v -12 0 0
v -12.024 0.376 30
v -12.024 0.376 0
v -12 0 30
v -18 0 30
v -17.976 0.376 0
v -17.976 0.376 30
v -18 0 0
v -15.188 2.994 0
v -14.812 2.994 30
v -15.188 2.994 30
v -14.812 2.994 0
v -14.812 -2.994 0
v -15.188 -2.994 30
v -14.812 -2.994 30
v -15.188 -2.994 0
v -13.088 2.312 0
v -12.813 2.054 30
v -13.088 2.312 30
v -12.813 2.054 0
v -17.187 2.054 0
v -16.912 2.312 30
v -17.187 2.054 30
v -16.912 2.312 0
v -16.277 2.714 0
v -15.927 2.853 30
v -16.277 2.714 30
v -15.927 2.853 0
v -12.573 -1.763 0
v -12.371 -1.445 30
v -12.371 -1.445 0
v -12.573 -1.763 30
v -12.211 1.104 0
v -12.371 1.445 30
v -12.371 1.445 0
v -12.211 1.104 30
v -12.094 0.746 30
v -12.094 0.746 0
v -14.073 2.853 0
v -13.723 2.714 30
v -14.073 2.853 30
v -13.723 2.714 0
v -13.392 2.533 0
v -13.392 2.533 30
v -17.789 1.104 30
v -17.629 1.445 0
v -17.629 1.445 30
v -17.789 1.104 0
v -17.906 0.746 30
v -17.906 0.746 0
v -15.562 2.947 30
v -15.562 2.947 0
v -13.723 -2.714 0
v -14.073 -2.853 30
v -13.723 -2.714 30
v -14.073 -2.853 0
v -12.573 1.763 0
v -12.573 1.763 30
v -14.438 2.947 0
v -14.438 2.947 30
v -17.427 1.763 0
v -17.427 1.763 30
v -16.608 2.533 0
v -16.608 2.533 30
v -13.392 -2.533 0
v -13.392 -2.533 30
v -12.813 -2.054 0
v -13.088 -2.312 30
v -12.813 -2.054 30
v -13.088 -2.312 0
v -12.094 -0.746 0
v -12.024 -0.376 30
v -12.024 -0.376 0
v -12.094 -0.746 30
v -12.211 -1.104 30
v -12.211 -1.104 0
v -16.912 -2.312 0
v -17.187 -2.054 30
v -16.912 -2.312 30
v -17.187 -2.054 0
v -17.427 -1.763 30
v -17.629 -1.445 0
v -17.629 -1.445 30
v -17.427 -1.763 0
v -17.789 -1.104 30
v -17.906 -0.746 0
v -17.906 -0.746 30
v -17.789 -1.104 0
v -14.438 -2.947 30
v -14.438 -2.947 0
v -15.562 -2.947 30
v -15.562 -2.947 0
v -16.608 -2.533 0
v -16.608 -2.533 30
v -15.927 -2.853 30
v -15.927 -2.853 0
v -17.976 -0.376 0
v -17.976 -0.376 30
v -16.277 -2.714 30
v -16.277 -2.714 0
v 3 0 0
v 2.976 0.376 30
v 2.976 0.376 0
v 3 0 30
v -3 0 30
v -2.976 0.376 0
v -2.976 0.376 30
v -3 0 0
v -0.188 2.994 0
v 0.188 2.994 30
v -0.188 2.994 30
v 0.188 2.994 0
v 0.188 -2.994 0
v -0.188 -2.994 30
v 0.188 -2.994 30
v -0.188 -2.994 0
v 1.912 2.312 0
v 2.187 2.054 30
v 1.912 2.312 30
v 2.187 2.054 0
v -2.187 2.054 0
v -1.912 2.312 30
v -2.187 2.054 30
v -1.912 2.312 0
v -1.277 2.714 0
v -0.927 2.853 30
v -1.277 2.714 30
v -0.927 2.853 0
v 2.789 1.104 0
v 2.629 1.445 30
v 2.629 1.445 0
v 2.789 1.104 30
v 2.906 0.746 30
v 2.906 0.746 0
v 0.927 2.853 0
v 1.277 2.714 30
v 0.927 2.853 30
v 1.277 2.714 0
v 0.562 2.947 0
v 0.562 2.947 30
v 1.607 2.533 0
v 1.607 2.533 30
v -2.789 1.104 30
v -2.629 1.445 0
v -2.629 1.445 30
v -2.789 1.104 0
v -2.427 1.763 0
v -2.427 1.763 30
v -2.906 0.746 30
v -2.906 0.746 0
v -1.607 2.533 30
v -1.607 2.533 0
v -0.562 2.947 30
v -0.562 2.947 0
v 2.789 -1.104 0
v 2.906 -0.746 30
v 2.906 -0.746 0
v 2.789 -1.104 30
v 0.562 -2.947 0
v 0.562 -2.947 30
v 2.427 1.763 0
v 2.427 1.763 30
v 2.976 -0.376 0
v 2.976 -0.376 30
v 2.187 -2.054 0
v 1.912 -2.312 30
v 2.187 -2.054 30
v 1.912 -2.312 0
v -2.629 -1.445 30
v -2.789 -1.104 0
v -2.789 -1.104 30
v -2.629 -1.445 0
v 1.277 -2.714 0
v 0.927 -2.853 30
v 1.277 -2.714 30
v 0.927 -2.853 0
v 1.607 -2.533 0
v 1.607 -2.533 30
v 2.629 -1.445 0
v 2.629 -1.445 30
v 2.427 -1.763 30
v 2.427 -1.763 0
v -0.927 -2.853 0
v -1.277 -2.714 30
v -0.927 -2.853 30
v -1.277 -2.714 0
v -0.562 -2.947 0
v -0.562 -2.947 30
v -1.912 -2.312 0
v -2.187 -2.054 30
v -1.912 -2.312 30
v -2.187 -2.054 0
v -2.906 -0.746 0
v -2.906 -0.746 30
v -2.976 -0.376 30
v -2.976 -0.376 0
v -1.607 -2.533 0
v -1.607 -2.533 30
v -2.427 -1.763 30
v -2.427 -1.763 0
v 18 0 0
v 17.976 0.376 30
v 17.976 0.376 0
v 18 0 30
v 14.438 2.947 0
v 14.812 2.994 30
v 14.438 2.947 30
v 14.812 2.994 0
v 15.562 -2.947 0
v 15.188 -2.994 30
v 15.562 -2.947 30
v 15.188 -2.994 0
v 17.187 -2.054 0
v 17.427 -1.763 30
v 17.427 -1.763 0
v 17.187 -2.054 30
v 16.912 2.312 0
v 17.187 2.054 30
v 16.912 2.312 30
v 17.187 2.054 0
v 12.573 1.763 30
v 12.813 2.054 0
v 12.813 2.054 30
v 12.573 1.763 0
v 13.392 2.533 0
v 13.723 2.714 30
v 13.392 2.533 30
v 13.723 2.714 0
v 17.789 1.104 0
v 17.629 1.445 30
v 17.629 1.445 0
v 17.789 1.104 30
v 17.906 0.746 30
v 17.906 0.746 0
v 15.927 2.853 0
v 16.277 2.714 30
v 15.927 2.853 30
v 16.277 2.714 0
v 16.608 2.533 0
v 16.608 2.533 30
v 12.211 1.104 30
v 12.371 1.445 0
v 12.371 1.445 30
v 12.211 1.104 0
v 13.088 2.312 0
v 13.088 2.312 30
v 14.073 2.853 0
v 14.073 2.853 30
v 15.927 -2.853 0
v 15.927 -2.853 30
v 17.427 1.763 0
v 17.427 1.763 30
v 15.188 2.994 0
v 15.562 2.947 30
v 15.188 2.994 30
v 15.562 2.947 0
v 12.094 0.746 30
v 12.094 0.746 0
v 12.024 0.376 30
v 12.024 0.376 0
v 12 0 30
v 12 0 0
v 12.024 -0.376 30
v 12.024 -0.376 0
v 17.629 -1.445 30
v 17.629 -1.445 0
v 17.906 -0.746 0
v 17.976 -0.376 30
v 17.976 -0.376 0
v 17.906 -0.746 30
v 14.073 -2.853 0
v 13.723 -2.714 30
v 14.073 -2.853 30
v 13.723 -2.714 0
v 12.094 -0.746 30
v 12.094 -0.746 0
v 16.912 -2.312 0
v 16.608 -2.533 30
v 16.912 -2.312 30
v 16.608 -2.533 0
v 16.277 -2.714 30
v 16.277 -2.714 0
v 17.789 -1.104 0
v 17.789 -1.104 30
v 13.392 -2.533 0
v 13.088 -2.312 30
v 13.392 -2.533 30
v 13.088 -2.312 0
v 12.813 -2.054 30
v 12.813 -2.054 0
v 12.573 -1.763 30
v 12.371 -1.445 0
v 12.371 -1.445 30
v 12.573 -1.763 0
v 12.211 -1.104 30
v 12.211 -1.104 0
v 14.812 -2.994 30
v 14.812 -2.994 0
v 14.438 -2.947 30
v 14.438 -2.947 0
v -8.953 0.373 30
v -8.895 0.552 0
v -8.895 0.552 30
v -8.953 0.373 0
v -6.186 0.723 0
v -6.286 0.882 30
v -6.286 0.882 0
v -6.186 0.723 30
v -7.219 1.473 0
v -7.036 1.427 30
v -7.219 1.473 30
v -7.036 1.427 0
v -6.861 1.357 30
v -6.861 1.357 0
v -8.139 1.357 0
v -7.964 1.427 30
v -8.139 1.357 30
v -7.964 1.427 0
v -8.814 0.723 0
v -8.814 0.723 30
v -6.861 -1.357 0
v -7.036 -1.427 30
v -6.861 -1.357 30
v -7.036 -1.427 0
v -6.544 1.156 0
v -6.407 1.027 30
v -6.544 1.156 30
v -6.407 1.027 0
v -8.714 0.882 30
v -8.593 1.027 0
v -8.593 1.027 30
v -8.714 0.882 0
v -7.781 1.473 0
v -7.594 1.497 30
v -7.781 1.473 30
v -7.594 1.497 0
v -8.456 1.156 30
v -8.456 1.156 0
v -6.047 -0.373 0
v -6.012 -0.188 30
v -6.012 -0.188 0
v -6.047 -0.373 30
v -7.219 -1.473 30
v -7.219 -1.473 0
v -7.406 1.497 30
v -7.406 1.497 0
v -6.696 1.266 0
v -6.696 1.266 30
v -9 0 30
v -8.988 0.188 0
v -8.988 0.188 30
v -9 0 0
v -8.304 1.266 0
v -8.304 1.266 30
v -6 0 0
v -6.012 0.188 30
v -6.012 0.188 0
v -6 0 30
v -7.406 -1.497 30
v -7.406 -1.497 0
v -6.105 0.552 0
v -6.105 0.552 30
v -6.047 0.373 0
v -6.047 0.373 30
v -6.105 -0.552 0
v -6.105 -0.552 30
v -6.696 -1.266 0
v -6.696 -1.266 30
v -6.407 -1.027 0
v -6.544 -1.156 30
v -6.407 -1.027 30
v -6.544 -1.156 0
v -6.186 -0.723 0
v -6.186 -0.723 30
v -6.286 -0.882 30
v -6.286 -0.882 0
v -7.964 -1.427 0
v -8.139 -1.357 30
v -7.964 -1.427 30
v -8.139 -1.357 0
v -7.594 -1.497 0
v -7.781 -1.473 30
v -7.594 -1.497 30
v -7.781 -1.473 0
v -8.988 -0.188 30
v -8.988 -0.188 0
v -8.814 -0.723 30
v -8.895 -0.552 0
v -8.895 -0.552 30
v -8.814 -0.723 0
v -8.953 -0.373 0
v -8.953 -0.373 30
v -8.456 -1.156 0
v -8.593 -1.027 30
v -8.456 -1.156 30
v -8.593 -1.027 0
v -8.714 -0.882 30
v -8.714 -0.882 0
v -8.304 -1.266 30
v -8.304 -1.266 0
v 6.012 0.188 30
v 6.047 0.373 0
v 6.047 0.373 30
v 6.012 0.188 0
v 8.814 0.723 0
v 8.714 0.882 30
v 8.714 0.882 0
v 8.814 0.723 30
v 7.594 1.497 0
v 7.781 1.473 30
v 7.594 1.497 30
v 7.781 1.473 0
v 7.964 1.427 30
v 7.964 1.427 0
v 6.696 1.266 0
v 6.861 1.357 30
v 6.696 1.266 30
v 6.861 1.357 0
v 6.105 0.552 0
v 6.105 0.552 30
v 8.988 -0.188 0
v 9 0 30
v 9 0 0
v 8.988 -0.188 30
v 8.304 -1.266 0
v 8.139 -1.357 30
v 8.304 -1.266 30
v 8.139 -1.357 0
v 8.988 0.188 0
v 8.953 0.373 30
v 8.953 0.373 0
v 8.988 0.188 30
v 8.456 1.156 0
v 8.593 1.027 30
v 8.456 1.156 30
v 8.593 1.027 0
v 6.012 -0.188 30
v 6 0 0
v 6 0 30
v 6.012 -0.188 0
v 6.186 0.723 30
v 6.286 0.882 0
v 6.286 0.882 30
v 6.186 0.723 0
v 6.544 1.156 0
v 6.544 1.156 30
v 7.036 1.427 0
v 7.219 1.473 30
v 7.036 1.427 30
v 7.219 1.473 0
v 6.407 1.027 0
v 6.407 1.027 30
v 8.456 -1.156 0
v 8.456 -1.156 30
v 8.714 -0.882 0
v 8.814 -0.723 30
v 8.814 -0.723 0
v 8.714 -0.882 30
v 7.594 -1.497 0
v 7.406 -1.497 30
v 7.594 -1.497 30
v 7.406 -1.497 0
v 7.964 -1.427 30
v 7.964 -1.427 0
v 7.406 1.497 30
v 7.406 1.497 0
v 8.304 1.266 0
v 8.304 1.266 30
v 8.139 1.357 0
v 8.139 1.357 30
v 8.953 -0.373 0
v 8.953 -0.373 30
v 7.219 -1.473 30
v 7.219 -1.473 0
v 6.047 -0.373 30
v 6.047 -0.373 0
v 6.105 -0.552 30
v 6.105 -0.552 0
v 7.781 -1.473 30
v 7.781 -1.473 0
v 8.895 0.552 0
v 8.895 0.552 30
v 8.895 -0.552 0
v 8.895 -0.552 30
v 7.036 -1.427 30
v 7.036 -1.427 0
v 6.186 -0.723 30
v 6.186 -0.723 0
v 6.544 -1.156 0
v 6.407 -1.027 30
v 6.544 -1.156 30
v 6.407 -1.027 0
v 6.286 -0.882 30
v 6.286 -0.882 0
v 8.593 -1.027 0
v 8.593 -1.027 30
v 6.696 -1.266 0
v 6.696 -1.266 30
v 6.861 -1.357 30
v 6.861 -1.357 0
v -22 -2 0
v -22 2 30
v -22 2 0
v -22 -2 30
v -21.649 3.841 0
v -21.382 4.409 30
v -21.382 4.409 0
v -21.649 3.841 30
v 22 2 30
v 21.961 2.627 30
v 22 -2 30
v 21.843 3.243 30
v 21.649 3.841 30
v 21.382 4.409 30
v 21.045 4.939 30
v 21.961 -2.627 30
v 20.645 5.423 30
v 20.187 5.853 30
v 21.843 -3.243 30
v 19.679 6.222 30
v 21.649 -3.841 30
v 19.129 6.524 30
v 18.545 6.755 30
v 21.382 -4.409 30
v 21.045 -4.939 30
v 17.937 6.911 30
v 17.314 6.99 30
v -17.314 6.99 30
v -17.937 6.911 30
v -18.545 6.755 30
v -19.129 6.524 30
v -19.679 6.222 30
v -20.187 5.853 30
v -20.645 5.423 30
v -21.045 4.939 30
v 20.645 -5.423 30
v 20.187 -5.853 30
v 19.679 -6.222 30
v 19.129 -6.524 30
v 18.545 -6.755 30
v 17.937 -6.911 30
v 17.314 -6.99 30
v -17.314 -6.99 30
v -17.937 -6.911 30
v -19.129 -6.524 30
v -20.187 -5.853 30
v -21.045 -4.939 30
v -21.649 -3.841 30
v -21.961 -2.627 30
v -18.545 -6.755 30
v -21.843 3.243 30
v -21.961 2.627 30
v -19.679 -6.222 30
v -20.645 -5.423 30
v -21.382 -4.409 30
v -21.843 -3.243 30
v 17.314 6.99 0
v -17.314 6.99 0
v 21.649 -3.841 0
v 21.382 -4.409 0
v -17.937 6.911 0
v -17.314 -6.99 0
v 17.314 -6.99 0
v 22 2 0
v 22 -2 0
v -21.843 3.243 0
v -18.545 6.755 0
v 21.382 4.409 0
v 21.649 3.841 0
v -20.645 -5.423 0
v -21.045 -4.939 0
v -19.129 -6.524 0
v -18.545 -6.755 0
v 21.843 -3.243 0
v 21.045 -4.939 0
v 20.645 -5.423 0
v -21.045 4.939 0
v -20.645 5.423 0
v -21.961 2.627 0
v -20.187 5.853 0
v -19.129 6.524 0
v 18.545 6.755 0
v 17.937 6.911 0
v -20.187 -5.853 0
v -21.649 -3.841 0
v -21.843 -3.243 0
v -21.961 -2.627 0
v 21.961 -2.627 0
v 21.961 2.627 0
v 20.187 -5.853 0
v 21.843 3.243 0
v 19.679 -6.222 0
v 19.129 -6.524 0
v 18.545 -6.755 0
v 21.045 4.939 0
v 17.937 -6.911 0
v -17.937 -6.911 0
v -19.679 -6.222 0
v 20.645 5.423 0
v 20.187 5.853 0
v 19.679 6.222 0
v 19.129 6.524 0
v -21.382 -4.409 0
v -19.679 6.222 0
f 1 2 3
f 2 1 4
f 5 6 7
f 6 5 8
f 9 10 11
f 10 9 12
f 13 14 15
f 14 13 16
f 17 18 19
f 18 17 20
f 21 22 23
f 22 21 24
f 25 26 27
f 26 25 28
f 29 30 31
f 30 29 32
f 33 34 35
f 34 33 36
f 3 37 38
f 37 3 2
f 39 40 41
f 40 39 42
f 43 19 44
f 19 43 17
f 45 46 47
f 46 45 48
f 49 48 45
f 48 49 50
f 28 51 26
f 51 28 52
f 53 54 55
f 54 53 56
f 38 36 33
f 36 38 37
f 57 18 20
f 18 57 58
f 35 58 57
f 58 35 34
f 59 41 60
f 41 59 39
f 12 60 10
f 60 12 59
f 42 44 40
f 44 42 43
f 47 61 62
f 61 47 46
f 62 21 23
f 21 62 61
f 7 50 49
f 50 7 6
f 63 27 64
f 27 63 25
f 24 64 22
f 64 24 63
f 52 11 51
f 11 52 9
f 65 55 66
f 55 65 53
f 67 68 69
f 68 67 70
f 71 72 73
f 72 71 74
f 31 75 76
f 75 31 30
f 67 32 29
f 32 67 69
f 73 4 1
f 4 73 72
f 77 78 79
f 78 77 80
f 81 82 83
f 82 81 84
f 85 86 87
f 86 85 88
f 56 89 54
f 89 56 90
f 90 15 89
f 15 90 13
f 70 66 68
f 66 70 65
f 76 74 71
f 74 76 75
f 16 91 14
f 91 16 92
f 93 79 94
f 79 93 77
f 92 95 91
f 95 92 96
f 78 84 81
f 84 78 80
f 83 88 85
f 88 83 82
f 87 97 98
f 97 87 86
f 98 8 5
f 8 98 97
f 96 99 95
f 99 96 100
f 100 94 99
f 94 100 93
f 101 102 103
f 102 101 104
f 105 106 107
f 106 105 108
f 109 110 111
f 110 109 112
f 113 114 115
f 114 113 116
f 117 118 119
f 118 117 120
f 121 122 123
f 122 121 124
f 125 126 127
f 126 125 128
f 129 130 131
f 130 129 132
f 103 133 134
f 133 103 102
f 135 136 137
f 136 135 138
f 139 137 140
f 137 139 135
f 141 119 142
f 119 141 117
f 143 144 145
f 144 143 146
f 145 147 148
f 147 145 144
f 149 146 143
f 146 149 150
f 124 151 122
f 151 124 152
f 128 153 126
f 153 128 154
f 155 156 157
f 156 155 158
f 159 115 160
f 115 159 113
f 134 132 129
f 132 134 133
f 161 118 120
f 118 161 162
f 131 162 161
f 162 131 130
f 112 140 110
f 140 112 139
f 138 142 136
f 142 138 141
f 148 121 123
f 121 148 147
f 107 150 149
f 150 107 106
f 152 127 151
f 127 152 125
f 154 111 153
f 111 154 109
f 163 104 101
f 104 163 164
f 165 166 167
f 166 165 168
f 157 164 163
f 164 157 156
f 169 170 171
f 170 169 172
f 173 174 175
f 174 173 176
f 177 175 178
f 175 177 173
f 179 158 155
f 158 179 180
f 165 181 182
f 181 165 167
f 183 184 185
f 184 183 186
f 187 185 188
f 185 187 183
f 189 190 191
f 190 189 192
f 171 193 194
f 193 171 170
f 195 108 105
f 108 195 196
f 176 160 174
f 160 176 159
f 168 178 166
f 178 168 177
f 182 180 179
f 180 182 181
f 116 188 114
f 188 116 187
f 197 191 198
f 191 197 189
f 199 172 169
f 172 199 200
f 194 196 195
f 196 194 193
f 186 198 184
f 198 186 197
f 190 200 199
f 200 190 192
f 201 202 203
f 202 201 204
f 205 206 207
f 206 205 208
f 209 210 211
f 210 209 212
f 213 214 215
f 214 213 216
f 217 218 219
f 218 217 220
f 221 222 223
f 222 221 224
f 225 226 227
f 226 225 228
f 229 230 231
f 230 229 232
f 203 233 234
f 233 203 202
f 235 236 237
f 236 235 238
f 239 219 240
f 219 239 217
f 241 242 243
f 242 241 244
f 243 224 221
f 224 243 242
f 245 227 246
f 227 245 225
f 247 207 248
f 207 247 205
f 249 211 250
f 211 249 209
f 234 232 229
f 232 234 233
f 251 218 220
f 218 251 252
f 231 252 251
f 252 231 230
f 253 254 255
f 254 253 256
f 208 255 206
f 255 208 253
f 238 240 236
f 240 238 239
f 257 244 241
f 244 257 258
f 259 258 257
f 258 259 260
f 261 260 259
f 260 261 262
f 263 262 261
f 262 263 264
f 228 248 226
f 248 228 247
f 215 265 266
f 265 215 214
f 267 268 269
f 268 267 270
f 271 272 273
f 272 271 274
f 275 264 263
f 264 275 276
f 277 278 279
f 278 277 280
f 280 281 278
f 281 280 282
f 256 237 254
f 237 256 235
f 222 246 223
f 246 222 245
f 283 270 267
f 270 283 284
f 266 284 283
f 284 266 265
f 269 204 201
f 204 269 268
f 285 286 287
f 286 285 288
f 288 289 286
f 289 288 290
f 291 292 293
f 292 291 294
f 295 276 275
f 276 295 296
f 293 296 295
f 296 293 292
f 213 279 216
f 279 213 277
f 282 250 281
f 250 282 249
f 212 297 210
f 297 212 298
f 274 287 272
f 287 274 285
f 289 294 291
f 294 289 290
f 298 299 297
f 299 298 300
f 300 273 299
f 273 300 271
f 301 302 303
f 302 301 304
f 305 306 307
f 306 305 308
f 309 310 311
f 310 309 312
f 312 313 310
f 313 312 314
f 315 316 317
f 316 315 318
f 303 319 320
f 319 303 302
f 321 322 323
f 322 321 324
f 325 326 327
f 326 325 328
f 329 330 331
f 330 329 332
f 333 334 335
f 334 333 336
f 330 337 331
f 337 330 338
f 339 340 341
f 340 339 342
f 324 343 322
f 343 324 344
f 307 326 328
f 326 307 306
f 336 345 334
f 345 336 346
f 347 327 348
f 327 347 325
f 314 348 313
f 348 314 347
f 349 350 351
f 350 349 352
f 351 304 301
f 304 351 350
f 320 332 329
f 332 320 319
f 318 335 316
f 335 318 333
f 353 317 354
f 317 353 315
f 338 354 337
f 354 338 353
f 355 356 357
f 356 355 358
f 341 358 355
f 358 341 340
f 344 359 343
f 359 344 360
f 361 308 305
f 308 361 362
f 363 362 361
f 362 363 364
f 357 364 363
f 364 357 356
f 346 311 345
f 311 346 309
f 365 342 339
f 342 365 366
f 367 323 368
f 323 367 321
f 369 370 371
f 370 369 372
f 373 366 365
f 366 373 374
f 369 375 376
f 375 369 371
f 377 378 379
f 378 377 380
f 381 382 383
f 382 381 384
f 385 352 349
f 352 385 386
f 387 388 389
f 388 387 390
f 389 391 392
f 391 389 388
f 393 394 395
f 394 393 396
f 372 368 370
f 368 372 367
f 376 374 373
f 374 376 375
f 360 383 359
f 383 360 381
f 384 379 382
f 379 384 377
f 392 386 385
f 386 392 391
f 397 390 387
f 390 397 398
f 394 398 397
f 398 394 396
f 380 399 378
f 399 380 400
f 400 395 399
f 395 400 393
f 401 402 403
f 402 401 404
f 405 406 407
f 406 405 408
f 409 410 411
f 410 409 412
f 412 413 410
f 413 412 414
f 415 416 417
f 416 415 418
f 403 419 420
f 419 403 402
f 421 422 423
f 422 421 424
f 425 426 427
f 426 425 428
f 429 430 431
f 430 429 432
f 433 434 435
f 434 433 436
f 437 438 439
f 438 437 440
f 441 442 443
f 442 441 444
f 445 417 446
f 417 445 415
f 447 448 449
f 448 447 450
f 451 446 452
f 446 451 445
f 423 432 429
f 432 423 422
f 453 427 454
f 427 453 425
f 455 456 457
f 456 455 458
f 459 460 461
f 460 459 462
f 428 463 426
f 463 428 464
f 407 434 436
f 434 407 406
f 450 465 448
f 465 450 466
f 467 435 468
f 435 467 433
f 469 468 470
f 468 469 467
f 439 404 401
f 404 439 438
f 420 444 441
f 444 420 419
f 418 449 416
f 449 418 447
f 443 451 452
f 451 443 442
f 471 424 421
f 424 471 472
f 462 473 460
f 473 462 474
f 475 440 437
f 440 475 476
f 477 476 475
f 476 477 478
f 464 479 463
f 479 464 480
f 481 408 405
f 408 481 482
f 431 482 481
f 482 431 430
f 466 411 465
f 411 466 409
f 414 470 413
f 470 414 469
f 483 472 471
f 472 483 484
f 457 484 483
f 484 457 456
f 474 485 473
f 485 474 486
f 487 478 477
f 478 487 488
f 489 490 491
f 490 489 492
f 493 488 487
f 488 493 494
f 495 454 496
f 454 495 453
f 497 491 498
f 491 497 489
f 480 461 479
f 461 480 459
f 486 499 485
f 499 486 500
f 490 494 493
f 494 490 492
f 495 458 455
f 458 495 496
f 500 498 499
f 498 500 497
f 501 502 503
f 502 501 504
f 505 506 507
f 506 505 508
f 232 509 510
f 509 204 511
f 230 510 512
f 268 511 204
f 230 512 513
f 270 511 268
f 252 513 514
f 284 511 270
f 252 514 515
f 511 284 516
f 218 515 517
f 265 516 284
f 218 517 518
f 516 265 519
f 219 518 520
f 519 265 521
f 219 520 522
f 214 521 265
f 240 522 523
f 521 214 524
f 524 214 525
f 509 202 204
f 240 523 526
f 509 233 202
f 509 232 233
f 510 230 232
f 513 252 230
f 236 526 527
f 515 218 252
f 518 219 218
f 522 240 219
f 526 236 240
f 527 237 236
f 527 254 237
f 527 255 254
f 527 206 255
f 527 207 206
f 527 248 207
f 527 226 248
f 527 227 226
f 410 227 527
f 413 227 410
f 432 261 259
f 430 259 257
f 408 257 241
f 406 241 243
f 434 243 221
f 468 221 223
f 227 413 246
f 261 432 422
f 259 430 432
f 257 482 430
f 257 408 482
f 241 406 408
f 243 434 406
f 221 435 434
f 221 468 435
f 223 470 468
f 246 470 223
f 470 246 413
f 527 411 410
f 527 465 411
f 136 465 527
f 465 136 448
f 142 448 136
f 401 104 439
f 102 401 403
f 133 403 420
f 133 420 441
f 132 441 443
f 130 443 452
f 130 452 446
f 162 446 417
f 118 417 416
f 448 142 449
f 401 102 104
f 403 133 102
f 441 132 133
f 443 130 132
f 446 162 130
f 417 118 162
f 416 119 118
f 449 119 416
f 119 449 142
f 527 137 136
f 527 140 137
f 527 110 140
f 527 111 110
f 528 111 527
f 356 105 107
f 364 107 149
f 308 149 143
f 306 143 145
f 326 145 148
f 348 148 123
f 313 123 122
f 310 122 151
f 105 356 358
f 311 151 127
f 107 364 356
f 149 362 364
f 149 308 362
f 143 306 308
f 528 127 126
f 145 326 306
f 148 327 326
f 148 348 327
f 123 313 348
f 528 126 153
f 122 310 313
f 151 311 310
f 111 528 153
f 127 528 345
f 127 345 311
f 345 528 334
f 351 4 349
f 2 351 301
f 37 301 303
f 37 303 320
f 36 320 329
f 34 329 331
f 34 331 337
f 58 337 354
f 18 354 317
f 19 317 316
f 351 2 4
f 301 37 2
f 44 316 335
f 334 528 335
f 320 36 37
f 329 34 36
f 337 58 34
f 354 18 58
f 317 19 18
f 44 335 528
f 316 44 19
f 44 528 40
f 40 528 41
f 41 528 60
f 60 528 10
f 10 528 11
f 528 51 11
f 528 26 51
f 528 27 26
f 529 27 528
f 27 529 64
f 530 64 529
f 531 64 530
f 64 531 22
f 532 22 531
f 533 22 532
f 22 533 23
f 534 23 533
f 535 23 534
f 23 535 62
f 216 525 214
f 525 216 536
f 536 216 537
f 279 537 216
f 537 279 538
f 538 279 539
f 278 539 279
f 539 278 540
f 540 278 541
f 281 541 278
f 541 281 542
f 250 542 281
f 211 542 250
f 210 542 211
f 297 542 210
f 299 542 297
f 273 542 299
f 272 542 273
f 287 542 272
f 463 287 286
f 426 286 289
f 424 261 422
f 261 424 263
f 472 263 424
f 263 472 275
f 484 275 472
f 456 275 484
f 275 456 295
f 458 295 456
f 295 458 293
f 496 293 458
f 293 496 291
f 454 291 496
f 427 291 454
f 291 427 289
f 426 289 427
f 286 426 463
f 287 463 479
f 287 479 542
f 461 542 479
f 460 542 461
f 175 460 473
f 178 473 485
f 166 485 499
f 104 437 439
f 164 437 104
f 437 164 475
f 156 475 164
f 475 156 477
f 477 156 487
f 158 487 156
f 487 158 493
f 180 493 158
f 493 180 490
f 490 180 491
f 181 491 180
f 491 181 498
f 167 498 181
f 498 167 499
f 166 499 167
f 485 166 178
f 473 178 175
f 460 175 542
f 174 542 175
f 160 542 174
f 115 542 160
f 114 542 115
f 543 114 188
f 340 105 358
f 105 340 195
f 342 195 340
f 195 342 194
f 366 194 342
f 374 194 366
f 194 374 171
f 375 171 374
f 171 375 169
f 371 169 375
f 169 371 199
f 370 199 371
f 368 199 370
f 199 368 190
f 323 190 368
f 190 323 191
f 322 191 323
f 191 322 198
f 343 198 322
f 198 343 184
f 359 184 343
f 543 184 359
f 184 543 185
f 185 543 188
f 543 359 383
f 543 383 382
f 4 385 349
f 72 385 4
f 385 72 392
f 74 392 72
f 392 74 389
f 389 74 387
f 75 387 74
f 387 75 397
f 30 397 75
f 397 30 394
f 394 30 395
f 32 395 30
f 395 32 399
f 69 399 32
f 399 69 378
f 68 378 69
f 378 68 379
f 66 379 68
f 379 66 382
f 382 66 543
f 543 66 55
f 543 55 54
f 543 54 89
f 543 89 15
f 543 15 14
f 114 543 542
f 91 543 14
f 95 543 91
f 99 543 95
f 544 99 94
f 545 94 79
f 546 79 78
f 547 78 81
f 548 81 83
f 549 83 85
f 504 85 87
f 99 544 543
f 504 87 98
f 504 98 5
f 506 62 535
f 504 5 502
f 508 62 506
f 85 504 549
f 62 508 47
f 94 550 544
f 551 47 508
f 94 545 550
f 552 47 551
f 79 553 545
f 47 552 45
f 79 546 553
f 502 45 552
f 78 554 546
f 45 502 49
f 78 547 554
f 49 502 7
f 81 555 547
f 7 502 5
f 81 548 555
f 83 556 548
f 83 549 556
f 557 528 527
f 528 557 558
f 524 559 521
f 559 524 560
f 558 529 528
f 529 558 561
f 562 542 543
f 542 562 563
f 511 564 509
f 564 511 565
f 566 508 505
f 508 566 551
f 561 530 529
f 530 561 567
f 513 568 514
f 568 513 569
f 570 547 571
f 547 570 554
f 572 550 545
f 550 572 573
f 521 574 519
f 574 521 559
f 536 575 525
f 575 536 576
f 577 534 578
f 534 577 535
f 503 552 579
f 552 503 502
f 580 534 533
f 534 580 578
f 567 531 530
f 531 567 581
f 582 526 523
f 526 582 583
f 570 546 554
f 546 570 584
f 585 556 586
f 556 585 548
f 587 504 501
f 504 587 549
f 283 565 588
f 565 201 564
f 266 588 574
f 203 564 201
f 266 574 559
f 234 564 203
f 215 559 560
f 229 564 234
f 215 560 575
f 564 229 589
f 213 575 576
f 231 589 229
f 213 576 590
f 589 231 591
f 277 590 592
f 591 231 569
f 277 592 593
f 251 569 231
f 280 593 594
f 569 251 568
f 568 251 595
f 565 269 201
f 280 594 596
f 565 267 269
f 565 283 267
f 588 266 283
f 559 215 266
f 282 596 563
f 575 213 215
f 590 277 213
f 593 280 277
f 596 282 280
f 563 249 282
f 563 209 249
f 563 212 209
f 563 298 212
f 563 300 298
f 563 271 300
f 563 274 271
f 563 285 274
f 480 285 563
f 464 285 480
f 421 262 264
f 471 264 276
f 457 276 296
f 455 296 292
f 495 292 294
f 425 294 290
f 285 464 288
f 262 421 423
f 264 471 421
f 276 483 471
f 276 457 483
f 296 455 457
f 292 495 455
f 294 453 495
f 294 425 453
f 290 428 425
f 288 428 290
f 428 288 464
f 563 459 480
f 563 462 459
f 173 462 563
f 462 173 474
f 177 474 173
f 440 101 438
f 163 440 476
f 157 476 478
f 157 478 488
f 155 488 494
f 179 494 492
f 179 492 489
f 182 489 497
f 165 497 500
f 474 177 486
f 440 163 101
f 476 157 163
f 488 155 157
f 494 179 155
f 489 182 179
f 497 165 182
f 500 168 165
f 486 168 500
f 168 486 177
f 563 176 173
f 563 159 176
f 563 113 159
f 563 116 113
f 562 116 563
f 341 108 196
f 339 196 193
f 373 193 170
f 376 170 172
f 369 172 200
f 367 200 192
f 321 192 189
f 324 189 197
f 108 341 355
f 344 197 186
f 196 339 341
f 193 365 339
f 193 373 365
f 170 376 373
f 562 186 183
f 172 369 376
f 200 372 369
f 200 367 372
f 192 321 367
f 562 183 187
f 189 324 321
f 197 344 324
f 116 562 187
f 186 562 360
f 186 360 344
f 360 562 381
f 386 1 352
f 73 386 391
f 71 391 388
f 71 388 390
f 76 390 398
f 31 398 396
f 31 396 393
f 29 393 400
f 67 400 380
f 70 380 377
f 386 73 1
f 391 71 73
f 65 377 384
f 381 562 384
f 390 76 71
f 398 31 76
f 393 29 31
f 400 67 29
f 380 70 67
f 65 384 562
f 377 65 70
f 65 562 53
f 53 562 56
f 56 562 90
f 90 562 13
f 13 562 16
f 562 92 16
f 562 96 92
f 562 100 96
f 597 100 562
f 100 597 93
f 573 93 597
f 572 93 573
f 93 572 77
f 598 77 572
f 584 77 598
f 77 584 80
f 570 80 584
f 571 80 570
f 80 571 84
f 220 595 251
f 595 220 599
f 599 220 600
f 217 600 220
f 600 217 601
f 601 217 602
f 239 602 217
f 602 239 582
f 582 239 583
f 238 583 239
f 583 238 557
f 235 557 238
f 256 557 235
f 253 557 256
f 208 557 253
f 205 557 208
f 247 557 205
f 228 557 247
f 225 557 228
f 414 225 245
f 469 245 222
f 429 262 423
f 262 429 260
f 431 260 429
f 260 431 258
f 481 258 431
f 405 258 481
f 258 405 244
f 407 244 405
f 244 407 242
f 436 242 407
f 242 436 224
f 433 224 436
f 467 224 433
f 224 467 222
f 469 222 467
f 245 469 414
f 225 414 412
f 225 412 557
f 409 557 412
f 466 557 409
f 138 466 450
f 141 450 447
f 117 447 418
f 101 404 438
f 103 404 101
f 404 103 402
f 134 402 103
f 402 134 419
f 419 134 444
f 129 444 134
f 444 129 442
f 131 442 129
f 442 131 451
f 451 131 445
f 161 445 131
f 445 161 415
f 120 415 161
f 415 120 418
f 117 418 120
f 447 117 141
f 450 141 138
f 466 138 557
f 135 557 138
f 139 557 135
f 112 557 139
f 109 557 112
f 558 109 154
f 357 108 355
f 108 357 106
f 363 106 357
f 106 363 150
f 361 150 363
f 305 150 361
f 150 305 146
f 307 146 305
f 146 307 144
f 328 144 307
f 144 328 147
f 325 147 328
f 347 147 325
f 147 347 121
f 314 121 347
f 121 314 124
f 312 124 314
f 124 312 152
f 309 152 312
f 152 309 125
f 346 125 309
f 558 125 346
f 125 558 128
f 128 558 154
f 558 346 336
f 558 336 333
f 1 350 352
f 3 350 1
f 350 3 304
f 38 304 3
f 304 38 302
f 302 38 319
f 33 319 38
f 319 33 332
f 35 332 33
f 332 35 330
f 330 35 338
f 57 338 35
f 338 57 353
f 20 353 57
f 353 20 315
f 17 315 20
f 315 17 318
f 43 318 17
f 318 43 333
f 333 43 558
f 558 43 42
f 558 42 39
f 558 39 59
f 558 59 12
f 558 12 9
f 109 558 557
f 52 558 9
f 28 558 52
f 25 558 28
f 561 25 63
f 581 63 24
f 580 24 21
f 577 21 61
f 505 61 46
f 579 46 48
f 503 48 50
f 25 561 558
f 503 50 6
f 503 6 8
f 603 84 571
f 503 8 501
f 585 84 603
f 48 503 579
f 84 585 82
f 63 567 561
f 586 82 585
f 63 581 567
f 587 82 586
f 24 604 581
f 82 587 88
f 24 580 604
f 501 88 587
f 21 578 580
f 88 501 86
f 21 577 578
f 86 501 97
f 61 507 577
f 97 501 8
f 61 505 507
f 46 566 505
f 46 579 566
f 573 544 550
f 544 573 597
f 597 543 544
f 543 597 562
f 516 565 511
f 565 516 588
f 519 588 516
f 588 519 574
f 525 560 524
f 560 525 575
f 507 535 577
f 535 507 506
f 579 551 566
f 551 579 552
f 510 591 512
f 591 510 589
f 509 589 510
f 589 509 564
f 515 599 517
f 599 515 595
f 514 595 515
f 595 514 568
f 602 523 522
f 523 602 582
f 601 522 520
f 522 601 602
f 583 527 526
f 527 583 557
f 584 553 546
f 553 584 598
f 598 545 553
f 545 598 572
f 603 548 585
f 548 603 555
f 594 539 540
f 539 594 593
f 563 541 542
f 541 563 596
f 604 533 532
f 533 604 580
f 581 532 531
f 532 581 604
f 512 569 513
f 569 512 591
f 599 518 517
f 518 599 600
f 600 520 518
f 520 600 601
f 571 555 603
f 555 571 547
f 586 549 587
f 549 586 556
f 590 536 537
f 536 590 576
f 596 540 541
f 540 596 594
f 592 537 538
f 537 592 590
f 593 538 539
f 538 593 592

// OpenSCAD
$fn = 50;


difference() {
	union() {
		*color(alpha = 1.0000000000, c = "gray") {
			translate(v = [0, 7, 0]) {
				linear_extrude(height = 1) {
					text(font = "Arial:style=Bold", halign = "center", size = 4.5000000000, text = "COMMENT plate main", valign = "center");
				}
			}
		}
		hull() {
			translate(v = [-17.0000000000, 2.0000000000, 0]) {
				cylinder(h = 30, r = 5);
			}
			translate(v = [17.0000000000, 2.0000000000, 0]) {
				cylinder(h = 30, r = 5);
			}
			translate(v = [-17.0000000000, -2.0000000000, 0]) {
				cylinder(h = 30, r = 5);
			}
			translate(v = [17.0000000000, -2.0000000000, 0]) {
				cylinder(h = 30, r = 5);
			}
		}
	}
	union() {
		*color(alpha = 1.0000000000, c = "gray") {
			translate(v = [0, 7, 0]) {
				linear_extrude(height = 1) {
					text(font = "Arial:style=Bold", halign = "center", size = 4.5000000000, text = "COMMENT holes main", valign = "center");
				}
			}
		}
		translate(v = [-15.0000000000, 0.0000000000, 0]) {
			translate(v = [0, 0, -100]) {
				cylinder(h = 200, r = 3.0000000000);
			}
		}
		translate(v = [0, 0, -100]) {
			cylinder(h = 200, r = 3.0000000000);
		}
		translate(v = [15.0000000000, 0.0000000000, 0]) {
			translate(v = [0, 0, -100]) {
				cylinder(h = 200, r = 3.0000000000);
			}
		}
		translate(v = [-15.0000000000, 0.0000000000, 0]) {
			translate(v = [0, 0, -100]) {
				cylinder(h = 200, r = 1.5000000000);
			}
		}
		translate(v = [-7.5000000000, 0.0000000000, 0]) {
			translate(v = [0, 0, -100]) {
				cylinder(h = 200, r = 1.5000000000);
			}
		}
		translate(v = [0, 0, -100]) {
			cylinder(h = 200, r = 1.5000000000);
		}
		translate(v = [7.5000000000, 0.0000000000, 0]) {
			translate(v = [0, 0, -100]) {
				cylinder(h = 200, r = 1.5000000000);
			}
		}
		translate(v = [15.0000000000, 0.0000000000, 0]) {
			translate(v = [0, 0, -100]) {
				cylinder(h = 200, r = 1.5000000000);
			}
		}
	}
}
